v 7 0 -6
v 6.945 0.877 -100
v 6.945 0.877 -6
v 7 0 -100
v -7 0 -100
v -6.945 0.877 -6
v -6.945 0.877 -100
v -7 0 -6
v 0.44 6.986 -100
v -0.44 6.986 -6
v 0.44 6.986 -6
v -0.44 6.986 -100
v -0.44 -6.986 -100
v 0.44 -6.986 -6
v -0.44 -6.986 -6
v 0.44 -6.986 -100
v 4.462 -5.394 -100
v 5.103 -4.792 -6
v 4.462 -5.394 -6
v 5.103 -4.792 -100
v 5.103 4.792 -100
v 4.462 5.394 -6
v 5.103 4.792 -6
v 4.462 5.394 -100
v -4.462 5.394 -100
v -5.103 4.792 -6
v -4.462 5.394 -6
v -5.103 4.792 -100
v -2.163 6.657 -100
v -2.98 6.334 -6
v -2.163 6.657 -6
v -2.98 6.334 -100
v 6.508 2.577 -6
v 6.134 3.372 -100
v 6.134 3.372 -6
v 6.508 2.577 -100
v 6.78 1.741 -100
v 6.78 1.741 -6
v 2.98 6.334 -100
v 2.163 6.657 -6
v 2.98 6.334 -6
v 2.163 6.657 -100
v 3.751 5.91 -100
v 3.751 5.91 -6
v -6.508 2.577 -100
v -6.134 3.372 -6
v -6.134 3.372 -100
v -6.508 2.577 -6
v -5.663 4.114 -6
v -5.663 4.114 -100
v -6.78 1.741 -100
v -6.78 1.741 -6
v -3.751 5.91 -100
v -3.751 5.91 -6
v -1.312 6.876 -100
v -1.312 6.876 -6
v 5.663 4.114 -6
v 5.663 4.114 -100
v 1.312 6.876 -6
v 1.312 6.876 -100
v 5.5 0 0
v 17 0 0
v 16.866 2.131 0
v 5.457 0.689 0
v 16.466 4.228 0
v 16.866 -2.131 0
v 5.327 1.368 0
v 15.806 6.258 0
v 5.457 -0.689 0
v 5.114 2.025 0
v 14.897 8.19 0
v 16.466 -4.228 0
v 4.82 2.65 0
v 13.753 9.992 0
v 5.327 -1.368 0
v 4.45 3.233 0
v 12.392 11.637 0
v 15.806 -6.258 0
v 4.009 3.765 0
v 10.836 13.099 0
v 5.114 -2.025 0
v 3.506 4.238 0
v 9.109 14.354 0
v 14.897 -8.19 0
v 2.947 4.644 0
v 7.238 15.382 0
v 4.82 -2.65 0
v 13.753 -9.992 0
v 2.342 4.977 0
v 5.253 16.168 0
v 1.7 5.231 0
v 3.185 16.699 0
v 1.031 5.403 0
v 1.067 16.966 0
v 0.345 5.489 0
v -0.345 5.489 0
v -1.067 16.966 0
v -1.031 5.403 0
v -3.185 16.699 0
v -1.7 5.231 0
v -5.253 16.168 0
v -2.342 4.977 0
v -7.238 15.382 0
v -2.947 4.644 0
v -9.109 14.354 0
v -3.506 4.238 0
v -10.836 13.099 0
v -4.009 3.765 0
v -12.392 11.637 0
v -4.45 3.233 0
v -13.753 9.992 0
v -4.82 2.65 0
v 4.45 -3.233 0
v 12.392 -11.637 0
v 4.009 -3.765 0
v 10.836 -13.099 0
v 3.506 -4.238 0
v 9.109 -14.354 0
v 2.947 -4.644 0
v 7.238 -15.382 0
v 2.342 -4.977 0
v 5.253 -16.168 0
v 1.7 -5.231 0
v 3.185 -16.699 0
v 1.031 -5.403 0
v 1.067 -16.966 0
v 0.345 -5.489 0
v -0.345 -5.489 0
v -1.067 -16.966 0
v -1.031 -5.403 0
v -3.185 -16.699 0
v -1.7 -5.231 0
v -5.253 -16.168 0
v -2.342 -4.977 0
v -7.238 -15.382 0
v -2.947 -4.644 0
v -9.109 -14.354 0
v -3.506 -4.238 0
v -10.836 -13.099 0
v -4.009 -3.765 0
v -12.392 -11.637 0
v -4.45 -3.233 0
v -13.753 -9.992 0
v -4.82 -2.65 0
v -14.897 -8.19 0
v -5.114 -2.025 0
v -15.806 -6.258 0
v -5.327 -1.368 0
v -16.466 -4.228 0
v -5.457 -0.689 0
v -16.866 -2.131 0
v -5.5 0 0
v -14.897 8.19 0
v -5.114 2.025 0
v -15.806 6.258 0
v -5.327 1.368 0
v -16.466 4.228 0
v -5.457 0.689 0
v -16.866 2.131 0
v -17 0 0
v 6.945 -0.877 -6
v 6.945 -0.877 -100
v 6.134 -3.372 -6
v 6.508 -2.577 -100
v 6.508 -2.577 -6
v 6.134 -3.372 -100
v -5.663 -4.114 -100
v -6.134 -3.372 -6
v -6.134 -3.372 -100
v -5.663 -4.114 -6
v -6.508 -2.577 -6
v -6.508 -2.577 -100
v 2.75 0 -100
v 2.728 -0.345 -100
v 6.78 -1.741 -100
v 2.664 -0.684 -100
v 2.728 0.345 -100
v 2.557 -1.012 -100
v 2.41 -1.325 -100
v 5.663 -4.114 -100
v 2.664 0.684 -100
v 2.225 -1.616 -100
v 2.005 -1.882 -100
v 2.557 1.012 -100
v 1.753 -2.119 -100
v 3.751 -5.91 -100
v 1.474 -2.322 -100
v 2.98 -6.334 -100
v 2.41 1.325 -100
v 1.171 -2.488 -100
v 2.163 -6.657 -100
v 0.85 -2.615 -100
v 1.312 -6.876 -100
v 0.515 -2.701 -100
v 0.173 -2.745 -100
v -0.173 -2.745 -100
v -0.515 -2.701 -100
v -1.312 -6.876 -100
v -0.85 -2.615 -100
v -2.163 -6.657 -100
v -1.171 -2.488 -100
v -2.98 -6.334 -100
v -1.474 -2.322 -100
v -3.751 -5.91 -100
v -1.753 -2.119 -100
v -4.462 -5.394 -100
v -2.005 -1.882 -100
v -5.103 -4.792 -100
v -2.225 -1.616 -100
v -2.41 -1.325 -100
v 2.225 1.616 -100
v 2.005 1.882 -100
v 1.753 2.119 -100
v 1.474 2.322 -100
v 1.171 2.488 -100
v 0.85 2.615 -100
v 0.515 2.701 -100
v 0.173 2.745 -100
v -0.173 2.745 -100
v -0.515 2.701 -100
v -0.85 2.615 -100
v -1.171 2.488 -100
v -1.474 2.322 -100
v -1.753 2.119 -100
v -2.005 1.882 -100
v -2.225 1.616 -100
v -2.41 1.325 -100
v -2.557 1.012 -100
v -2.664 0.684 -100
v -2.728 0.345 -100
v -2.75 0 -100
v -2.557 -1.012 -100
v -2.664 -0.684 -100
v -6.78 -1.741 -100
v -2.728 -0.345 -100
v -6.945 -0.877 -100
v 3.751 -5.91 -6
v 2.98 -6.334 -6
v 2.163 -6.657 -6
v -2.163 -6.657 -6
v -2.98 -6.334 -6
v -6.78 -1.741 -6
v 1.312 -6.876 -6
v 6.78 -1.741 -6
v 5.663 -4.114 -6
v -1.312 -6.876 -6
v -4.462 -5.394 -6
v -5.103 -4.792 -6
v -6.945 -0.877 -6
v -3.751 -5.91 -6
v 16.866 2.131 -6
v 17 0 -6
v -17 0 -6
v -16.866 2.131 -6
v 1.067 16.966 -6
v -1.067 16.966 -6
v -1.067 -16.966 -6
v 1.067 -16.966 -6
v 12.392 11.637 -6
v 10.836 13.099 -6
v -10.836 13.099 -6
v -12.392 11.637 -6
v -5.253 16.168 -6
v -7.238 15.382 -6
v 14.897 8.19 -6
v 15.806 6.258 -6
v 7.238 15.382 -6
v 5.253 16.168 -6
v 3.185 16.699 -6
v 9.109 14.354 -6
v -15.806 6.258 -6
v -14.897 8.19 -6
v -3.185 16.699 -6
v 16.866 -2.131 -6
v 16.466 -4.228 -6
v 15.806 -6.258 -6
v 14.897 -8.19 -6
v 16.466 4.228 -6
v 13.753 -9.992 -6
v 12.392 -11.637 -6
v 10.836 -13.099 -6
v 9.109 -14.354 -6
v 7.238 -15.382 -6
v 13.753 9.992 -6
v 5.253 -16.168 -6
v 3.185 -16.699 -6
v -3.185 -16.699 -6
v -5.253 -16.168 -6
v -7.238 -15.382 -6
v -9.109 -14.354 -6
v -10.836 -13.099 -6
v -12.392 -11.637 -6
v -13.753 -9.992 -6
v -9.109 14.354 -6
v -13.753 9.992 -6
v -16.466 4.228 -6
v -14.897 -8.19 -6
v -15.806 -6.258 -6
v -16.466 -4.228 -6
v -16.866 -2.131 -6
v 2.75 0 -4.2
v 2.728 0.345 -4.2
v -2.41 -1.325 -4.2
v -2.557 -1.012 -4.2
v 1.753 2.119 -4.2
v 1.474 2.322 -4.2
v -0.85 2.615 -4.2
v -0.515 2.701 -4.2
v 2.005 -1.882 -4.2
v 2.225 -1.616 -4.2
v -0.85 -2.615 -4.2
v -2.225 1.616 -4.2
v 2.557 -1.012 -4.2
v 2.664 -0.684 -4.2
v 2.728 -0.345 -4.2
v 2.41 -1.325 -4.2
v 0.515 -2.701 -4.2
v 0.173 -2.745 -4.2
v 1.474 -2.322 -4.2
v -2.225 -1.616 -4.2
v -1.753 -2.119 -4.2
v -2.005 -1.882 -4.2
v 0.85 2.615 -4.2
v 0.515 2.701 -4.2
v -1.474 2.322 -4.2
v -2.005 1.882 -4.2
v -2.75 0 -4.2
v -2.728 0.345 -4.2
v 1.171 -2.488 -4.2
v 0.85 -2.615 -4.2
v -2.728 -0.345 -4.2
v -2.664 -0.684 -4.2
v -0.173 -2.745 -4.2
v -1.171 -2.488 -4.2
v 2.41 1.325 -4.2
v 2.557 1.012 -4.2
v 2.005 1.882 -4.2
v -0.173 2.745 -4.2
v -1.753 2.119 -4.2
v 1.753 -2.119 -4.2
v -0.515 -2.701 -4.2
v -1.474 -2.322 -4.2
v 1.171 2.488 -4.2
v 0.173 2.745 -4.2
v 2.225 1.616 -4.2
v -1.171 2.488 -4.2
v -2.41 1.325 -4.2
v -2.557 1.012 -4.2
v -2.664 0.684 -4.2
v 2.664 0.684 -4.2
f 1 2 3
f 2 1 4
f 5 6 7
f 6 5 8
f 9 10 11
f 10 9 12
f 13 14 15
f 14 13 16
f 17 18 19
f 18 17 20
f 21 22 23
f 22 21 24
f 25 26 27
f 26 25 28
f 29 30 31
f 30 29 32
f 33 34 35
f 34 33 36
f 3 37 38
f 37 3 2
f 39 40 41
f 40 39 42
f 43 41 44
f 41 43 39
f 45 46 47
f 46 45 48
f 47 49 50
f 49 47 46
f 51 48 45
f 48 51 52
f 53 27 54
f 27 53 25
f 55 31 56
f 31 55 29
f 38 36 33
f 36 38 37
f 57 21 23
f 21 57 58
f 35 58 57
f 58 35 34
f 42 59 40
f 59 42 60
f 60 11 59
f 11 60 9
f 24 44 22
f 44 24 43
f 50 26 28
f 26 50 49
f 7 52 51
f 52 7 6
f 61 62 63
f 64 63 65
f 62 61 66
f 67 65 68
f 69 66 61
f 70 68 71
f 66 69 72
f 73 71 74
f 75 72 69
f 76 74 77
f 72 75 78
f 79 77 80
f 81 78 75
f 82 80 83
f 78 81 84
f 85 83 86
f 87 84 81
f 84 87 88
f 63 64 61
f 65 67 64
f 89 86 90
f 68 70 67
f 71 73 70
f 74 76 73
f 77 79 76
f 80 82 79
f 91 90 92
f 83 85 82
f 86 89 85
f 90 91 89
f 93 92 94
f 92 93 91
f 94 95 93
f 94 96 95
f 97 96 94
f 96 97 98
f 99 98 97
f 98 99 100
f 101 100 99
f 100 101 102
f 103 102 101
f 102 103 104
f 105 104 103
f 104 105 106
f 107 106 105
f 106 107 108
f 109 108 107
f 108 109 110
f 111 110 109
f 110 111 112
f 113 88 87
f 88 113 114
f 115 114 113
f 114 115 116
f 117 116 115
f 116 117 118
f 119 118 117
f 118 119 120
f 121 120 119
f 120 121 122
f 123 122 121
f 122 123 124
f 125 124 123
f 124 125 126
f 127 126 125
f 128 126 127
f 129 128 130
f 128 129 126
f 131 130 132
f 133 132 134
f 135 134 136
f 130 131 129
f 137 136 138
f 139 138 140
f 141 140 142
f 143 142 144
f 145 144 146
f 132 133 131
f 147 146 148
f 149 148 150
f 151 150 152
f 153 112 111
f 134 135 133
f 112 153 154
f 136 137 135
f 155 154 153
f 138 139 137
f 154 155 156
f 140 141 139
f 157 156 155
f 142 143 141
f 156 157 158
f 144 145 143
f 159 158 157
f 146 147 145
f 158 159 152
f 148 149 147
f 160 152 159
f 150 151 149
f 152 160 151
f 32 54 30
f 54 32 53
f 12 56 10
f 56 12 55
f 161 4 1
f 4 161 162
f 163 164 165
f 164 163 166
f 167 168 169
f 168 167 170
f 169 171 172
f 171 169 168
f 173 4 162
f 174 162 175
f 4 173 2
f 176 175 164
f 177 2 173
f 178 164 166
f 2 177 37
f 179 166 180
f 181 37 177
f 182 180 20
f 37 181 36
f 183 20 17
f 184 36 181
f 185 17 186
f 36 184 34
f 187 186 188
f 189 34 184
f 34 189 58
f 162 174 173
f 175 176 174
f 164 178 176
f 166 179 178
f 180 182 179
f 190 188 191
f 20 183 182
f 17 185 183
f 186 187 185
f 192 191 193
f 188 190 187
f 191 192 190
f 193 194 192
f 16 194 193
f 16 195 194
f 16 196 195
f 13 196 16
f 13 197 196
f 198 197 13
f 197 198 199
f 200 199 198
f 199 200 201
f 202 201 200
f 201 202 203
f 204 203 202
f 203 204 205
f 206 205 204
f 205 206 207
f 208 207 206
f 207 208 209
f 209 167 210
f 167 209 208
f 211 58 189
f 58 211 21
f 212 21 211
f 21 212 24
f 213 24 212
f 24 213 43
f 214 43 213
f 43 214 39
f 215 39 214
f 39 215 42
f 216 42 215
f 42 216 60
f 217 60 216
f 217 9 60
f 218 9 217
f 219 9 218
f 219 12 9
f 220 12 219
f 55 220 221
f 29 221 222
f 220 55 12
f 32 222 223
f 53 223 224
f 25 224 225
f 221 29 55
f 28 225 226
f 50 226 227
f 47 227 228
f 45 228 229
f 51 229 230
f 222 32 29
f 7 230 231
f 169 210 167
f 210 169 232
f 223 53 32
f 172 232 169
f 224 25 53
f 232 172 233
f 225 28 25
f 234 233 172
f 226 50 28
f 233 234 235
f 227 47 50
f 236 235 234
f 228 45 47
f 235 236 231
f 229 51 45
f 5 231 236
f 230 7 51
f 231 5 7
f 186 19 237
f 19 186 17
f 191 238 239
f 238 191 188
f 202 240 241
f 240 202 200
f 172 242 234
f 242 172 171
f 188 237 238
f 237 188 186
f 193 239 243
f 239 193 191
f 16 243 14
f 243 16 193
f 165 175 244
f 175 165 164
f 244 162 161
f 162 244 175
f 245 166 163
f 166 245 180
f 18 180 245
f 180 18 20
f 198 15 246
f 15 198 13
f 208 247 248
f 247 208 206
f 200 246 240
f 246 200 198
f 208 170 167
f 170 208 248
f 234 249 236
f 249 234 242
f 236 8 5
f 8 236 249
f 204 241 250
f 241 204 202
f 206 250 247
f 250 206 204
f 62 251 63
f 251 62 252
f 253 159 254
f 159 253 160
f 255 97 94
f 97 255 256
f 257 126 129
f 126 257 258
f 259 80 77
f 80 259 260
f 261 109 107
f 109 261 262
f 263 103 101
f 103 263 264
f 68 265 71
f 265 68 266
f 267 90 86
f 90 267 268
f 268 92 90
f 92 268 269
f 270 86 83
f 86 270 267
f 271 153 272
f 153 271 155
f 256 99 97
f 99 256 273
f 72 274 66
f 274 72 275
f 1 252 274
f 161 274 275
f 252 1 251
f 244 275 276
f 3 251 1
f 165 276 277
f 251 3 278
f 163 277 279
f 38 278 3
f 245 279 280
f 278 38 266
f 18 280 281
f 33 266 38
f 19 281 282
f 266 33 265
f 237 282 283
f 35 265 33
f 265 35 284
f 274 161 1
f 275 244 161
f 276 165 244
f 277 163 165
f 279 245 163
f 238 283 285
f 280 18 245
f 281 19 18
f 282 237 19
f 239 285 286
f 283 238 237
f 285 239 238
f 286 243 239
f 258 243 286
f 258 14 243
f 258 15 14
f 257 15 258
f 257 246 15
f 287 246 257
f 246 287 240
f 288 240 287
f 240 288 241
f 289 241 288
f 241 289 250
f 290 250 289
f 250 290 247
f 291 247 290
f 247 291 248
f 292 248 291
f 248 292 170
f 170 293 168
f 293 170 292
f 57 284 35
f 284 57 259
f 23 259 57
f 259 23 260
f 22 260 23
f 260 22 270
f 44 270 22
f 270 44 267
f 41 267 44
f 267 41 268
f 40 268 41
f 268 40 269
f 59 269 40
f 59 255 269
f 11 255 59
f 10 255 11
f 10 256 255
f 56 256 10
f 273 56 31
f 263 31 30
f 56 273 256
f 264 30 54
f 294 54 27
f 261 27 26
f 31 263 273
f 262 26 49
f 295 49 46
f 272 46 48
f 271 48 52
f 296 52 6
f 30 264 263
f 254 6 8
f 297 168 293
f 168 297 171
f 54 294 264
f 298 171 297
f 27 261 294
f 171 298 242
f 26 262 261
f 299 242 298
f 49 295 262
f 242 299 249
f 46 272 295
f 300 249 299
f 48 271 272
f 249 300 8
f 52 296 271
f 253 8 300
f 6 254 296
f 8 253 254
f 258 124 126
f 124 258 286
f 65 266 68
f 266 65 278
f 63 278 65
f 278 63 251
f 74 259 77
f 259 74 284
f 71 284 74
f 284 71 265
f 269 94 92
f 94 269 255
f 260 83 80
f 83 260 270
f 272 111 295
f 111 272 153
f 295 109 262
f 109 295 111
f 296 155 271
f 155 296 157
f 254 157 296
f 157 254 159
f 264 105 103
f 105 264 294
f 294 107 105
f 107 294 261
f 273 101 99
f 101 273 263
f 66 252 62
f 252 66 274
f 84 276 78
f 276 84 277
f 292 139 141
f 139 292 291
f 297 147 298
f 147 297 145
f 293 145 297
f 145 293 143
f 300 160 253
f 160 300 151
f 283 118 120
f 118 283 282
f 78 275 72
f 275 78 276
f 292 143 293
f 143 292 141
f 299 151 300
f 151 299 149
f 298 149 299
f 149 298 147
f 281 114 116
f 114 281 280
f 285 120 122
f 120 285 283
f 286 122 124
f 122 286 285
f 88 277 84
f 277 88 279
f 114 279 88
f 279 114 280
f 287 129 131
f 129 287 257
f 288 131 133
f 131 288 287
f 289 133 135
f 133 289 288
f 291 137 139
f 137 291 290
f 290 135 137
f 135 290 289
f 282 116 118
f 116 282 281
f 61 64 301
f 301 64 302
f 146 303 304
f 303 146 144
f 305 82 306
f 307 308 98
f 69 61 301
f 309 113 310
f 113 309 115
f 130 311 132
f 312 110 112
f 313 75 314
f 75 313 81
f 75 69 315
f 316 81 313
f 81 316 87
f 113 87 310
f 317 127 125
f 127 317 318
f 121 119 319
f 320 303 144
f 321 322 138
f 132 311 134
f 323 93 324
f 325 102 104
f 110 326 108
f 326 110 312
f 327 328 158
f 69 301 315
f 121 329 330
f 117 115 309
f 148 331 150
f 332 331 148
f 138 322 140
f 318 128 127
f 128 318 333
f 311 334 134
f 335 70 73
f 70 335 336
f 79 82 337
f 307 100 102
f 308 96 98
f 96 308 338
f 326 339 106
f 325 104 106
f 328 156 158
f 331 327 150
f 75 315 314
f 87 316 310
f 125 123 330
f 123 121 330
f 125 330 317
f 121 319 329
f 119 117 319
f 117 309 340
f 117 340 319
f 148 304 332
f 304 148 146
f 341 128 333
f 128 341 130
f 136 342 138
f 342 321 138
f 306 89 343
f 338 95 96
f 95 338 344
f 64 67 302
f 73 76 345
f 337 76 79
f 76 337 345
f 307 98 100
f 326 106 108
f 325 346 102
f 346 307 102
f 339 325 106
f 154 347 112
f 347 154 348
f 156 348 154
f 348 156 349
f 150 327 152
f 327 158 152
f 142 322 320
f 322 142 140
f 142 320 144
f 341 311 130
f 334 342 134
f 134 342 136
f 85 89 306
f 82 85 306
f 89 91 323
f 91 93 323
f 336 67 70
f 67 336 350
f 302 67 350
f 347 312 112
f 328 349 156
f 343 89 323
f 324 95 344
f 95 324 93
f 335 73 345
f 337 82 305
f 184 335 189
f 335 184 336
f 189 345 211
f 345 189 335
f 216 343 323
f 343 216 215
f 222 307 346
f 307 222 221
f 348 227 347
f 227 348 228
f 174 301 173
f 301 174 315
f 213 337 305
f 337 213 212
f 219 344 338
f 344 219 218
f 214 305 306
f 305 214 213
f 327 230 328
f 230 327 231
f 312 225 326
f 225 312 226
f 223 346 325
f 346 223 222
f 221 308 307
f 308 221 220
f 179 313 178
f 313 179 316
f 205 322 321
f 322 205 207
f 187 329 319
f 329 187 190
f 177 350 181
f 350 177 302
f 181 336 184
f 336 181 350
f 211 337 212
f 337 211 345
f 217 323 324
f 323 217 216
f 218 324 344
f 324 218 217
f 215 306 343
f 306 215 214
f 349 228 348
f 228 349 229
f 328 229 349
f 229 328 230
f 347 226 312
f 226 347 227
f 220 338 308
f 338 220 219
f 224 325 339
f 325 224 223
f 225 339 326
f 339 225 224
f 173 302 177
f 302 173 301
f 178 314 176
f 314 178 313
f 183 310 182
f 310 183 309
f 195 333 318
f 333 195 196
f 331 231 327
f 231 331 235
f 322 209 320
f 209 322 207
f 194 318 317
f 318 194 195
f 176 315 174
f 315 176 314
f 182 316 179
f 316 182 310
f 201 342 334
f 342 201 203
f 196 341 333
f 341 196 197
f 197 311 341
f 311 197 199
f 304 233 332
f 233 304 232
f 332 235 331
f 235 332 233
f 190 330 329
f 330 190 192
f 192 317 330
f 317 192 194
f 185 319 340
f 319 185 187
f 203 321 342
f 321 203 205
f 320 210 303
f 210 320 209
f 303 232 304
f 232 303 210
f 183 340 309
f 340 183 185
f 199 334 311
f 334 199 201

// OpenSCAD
$fn = 50;


difference() {
	union() {
		translate(v = [0, 0, -100.0000000000]) {
			cylinder(h = 100, r = 7.0000000000);
		}
		translate(v = [0, 0, -6.0000000000]) {
			cylinder(h = 6, r = 17.0000000000);
		}
	}
	union() {
		translate(v = [0, 0, 0]) {
			rotate(a = [0, 0, 0]) {
				difference() {
					union() {
						#translate(v = [0, 0, -100.0000000000]) {
							cylinder(h = 100, r = 2.2500000000);
						}
						#translate(v = [0, 0, -4.2000000000]) {
							cylinder(h = 4.2000000000, r = 7.0000000000, r1 = 2.7500000000, r2 = 5.5000000000);
						}
						#translate(v = [0, 0, -100.0000000000]) {
							cylinder(h = 100, r = 2.7500000000);
						}
						#translate(v = [0, 0, -100.0000000000]) {
							cylinder(h = 100, r = 2.2500000000);
						}
					}
					union();
				}
			}
		}
	}
}
